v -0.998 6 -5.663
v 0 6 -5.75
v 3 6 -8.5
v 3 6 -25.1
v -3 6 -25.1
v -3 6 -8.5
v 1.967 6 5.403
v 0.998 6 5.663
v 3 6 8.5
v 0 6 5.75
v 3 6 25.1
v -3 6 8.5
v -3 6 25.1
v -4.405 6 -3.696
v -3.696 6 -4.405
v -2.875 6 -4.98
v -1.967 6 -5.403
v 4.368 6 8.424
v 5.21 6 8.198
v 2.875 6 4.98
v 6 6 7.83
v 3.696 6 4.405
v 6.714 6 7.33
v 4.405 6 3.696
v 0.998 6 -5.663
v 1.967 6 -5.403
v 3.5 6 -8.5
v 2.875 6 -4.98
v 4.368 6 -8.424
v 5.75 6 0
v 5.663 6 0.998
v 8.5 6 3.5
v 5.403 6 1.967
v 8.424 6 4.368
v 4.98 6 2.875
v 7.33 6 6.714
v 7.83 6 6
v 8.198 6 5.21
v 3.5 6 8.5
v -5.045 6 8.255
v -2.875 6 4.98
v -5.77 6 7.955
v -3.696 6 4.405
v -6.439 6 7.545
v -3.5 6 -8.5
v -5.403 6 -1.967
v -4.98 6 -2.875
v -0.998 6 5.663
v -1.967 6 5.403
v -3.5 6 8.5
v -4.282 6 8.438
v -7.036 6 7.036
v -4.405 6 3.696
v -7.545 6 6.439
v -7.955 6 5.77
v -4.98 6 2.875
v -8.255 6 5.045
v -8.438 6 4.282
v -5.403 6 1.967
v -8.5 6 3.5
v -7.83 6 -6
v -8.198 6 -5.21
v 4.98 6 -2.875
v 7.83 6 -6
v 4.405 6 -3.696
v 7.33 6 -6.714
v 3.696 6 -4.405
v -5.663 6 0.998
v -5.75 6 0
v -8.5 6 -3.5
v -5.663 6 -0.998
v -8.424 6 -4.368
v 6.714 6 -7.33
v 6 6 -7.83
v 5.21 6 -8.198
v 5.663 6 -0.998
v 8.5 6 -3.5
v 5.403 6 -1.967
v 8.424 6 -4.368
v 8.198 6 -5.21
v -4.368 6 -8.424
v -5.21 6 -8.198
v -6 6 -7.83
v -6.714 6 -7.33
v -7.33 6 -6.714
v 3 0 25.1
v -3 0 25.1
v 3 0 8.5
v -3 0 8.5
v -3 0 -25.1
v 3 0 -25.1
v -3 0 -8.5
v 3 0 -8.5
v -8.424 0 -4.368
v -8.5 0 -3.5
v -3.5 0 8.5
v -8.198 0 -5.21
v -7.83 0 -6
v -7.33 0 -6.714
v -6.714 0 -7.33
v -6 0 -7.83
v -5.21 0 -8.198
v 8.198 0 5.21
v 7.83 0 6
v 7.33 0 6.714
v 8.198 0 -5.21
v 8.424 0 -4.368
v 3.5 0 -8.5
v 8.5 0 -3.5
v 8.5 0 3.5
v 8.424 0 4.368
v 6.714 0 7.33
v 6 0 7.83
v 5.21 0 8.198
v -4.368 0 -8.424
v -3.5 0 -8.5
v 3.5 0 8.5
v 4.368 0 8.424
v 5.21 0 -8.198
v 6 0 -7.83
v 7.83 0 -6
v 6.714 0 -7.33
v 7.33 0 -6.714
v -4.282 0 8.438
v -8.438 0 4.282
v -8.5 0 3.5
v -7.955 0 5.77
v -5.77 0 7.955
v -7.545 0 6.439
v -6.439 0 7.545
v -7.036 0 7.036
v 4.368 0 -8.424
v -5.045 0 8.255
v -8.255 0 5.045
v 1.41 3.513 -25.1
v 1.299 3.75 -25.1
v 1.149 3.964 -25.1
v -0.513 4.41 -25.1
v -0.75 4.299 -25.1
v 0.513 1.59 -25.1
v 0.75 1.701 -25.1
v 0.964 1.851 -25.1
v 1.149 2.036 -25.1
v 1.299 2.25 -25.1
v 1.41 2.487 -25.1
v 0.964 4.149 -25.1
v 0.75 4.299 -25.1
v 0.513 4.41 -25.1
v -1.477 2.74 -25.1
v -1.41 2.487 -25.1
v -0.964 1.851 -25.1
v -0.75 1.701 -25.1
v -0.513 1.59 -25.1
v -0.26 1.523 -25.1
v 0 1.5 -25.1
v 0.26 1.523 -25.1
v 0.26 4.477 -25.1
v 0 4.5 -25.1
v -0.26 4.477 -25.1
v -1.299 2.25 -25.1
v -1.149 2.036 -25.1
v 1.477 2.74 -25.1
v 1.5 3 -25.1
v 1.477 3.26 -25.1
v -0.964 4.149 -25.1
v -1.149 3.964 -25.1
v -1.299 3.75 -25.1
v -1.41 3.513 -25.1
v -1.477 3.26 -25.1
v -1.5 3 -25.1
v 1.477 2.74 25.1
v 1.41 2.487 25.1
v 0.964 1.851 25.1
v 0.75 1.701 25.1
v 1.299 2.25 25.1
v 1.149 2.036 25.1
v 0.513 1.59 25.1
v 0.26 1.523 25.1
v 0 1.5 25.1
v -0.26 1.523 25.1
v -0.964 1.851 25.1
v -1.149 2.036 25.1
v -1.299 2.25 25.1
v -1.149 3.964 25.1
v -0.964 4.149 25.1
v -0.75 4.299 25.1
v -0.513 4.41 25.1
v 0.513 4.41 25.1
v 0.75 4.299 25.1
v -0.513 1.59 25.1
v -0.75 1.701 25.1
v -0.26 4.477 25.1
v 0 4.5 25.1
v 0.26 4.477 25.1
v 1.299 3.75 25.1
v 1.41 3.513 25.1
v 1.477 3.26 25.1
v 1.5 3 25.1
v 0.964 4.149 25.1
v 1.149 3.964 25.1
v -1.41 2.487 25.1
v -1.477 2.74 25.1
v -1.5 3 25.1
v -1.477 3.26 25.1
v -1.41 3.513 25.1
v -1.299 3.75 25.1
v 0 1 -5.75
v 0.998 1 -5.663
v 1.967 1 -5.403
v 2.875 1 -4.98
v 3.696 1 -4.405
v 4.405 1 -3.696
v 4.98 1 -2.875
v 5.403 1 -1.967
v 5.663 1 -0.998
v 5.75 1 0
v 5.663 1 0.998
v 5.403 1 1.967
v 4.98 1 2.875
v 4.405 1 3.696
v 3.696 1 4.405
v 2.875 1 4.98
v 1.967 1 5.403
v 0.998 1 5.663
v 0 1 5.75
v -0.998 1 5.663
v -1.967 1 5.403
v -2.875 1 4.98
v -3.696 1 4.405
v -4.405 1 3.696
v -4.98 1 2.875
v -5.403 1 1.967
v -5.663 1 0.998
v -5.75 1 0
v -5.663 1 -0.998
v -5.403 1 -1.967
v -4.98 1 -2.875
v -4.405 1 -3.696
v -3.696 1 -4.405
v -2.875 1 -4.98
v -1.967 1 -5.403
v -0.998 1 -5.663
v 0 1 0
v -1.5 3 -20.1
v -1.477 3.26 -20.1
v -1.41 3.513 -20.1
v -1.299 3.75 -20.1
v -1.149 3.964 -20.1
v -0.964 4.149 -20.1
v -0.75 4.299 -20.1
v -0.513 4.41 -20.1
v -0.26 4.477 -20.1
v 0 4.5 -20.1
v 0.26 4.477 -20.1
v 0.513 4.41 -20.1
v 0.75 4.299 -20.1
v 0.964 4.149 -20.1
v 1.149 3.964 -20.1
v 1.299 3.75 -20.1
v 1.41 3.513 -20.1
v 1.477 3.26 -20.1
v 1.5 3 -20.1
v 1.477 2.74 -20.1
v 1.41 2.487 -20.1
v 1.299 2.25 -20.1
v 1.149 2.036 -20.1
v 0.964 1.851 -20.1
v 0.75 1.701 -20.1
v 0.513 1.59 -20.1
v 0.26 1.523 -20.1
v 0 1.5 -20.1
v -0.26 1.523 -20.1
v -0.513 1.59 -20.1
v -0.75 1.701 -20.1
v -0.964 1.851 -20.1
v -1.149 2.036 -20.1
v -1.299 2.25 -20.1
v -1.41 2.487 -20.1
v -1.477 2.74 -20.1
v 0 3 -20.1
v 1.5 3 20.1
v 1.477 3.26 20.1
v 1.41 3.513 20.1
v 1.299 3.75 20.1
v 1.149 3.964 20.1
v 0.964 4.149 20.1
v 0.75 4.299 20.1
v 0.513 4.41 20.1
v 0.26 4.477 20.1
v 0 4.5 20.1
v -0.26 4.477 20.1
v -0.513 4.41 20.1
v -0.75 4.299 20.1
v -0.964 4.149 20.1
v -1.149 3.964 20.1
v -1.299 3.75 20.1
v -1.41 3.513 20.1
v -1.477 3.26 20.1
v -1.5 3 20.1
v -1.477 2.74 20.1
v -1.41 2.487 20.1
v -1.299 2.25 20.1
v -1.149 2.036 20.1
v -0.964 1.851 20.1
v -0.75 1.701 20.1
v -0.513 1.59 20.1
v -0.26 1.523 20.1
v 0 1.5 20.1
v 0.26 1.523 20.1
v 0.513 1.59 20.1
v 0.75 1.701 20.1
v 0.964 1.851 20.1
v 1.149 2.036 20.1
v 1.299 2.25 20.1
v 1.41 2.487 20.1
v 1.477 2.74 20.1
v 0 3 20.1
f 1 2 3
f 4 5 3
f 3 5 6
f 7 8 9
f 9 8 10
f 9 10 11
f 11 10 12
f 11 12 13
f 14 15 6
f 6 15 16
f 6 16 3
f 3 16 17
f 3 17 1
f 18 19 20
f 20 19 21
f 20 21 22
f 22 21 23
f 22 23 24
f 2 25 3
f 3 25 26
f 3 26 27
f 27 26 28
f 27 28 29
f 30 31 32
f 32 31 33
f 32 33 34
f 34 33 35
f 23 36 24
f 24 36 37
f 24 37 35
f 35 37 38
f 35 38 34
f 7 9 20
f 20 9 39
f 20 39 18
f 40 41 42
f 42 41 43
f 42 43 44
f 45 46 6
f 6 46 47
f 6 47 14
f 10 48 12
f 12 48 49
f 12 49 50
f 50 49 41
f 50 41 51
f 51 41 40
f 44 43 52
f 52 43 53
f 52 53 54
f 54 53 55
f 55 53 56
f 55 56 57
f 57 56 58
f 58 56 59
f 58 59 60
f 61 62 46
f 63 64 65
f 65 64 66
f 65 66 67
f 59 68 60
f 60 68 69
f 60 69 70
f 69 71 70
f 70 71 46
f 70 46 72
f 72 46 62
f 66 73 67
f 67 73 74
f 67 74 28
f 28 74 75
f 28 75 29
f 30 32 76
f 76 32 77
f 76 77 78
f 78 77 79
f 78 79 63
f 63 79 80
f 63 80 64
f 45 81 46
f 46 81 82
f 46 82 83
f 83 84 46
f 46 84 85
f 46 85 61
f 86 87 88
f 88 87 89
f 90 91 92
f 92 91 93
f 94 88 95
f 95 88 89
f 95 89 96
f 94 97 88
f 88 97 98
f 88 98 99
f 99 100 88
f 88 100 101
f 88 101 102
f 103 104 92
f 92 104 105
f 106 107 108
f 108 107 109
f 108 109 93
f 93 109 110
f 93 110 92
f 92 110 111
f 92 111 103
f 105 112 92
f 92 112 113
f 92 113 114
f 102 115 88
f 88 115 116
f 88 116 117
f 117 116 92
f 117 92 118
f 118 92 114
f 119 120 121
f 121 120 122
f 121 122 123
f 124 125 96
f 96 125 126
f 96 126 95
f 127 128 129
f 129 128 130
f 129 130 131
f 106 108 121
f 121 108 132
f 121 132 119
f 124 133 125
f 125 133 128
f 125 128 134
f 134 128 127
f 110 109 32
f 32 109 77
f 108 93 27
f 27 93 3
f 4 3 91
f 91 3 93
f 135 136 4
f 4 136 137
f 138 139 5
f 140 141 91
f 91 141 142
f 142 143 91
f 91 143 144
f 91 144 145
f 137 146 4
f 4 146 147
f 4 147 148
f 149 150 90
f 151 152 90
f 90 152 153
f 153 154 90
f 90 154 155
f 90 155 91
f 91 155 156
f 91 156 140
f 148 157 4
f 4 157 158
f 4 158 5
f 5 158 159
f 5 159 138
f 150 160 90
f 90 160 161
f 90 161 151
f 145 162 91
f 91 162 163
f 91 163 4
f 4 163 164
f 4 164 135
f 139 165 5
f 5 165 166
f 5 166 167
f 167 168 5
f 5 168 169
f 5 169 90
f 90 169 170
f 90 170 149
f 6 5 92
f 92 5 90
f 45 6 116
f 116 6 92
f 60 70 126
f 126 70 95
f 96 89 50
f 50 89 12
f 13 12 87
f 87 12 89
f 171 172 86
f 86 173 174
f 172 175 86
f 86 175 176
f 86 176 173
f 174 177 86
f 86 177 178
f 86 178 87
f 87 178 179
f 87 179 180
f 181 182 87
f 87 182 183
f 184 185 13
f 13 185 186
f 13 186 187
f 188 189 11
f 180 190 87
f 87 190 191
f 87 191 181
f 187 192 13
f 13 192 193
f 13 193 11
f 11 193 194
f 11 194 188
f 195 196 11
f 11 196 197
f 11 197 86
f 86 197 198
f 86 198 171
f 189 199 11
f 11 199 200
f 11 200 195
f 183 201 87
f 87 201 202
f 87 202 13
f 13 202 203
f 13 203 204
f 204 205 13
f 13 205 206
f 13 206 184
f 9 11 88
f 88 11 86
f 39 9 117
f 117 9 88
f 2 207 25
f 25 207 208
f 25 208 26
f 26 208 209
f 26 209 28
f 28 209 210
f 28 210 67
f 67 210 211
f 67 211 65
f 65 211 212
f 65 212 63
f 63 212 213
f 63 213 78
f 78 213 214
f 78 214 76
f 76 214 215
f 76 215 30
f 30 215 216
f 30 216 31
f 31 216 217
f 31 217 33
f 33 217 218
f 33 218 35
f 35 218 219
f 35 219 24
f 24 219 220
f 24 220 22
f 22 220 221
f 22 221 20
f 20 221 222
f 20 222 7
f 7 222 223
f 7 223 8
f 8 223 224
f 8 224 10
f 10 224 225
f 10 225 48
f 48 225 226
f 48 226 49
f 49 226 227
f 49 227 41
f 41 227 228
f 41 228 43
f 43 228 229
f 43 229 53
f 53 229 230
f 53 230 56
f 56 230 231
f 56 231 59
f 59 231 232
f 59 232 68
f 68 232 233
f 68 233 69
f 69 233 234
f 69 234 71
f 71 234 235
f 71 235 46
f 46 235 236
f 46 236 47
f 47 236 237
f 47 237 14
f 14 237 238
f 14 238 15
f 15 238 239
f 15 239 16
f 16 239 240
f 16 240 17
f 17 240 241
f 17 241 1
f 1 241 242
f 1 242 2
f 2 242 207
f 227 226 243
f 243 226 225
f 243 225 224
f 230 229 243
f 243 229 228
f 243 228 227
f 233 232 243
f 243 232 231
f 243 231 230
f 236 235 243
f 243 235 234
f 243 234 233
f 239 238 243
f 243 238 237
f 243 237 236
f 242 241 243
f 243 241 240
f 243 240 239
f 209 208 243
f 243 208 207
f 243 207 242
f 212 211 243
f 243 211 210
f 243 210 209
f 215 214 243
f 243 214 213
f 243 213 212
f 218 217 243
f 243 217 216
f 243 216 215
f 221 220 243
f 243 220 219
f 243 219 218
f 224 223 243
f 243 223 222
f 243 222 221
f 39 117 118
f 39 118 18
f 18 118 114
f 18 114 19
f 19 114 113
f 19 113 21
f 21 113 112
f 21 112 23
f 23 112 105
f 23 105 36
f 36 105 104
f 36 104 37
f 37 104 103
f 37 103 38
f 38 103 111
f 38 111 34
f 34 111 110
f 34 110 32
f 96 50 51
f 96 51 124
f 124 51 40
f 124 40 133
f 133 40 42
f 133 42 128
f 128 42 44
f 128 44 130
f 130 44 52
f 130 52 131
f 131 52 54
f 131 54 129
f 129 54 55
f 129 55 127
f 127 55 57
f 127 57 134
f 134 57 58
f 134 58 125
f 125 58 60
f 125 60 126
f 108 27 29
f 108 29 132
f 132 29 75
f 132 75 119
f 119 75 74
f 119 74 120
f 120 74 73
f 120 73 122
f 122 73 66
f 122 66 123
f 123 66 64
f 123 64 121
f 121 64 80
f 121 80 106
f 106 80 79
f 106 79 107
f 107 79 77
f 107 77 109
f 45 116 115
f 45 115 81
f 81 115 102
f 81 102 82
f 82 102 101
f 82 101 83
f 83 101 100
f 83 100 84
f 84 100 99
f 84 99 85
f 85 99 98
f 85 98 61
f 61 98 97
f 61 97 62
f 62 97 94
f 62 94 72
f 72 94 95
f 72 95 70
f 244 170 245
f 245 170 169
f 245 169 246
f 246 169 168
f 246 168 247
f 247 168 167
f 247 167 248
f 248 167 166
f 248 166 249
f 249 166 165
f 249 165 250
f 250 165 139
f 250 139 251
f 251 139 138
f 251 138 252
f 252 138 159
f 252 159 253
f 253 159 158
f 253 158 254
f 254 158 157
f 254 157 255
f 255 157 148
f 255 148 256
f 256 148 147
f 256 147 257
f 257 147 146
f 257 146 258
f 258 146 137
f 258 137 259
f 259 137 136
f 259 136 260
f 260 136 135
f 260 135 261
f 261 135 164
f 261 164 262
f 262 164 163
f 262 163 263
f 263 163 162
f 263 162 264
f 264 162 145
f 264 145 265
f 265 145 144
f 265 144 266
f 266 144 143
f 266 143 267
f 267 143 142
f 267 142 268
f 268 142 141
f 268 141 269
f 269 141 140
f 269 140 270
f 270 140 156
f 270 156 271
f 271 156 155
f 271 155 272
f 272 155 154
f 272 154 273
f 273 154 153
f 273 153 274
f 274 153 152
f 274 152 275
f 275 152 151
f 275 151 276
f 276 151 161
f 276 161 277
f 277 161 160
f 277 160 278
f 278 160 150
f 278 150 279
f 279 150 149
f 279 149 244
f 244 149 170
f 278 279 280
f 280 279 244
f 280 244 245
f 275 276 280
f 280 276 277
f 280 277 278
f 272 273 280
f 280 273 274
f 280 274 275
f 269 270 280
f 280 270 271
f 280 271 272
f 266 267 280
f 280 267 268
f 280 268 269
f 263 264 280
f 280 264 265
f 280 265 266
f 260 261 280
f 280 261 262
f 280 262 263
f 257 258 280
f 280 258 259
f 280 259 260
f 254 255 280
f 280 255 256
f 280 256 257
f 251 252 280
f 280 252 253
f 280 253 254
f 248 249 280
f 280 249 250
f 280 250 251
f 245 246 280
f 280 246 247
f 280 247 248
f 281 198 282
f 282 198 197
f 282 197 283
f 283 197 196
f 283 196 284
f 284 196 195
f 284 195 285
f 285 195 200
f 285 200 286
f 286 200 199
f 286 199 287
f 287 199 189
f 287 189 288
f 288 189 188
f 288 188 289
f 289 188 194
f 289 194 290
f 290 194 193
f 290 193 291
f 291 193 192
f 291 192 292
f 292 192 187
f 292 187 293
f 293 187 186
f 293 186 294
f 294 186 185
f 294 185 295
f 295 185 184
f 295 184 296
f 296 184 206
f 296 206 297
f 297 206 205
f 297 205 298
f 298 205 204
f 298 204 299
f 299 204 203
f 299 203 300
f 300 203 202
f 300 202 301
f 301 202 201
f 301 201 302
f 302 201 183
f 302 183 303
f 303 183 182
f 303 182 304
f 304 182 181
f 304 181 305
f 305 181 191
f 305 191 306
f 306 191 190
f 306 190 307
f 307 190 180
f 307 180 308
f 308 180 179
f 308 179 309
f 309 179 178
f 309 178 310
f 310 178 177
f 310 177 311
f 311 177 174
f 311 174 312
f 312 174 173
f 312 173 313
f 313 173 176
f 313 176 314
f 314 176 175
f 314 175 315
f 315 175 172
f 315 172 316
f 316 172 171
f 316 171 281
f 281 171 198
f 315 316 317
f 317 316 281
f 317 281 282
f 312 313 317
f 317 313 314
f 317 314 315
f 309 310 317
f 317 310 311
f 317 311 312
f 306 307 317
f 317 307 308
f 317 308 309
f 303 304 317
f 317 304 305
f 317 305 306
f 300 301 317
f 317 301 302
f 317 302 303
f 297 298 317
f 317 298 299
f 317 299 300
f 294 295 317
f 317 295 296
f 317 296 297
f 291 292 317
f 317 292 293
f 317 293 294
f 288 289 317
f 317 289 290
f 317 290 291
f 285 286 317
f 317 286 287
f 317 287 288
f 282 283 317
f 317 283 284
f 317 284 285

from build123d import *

# Parameters (mm, degrees)
SKETCH1_R           = 5.75
BOSS_EXTRUDE1_DEPTH = 6
SKETCH8_W           = 17
SKETCH8_H           = 17
BOSS_EXTRUDE6_DEPTH = 1
FILLET1_R           = 5
SKETCH9_R           = 1.5
CUT_EXTRUDE2_DEPTH  = 5
SKETCH10_R          = 1.5
CUT_EXTRUDE3_DEPTH  = 5


with BuildPart() as part:
    # Sketch1 → Boss-Extrude1 (new body)
    with BuildSketch(Plane(origin=(0, 0, 0), x_dir=(1, 0, 0), z_dir=(0, 1, 0))):
        Polygon((8.5, 8.5), (3, 8.5), (3, 25.1), (-3, 25.1), (-3, 8.5), (-8.5, 8.5), (-8.5, -8.5), (-3, -8.5), (-3, -25.1), (3, -25.1), (3, -8.5), (8.5, -8.5), align=None)
        Circle(SKETCH1_R, mode=Mode.SUBTRACT)
    extrude(amount=BOSS_EXTRUDE1_DEPTH)

    # Sketch8 → Boss-Extrude6 (add)
    with BuildSketch(Plane.XZ):
        Rectangle(SKETCH8_W, SKETCH8_H)
    extrude(amount=-BOSS_EXTRUDE6_DEPTH)

    # Fillet1
    fillet1_edges = [part.edges().sort_by_distance(p)[0] for p in [
        (8.5, 3, -8.5),
        (-8.5, 3, -8.5),
        (-8.5, 3, 8.5),
        (8.5, 3, 8.5),
    ]]
    fillet(fillet1_edges, radius=FILLET1_R)

    # Sketch9 → Cut-Extrude2 (cut)
    with BuildSketch(Plane(origin=(0, 0, -25.1), x_dir=(-1, 0, 0), z_dir=(0, 0, -1))):
        with Locations((0, 3)):
            Circle(SKETCH9_R)
    extrude(amount=-CUT_EXTRUDE2_DEPTH, mode=Mode.SUBTRACT)

    # Sketch10 → Cut-Extrude3 (cut)
    with BuildSketch(Plane.XY.offset(25.1)):
        with Locations((0, 3)):
            Circle(SKETCH10_R)
    extrude(amount=-CUT_EXTRUDE3_DEPTH, mode=Mode.SUBTRACT)


solid = part.part
